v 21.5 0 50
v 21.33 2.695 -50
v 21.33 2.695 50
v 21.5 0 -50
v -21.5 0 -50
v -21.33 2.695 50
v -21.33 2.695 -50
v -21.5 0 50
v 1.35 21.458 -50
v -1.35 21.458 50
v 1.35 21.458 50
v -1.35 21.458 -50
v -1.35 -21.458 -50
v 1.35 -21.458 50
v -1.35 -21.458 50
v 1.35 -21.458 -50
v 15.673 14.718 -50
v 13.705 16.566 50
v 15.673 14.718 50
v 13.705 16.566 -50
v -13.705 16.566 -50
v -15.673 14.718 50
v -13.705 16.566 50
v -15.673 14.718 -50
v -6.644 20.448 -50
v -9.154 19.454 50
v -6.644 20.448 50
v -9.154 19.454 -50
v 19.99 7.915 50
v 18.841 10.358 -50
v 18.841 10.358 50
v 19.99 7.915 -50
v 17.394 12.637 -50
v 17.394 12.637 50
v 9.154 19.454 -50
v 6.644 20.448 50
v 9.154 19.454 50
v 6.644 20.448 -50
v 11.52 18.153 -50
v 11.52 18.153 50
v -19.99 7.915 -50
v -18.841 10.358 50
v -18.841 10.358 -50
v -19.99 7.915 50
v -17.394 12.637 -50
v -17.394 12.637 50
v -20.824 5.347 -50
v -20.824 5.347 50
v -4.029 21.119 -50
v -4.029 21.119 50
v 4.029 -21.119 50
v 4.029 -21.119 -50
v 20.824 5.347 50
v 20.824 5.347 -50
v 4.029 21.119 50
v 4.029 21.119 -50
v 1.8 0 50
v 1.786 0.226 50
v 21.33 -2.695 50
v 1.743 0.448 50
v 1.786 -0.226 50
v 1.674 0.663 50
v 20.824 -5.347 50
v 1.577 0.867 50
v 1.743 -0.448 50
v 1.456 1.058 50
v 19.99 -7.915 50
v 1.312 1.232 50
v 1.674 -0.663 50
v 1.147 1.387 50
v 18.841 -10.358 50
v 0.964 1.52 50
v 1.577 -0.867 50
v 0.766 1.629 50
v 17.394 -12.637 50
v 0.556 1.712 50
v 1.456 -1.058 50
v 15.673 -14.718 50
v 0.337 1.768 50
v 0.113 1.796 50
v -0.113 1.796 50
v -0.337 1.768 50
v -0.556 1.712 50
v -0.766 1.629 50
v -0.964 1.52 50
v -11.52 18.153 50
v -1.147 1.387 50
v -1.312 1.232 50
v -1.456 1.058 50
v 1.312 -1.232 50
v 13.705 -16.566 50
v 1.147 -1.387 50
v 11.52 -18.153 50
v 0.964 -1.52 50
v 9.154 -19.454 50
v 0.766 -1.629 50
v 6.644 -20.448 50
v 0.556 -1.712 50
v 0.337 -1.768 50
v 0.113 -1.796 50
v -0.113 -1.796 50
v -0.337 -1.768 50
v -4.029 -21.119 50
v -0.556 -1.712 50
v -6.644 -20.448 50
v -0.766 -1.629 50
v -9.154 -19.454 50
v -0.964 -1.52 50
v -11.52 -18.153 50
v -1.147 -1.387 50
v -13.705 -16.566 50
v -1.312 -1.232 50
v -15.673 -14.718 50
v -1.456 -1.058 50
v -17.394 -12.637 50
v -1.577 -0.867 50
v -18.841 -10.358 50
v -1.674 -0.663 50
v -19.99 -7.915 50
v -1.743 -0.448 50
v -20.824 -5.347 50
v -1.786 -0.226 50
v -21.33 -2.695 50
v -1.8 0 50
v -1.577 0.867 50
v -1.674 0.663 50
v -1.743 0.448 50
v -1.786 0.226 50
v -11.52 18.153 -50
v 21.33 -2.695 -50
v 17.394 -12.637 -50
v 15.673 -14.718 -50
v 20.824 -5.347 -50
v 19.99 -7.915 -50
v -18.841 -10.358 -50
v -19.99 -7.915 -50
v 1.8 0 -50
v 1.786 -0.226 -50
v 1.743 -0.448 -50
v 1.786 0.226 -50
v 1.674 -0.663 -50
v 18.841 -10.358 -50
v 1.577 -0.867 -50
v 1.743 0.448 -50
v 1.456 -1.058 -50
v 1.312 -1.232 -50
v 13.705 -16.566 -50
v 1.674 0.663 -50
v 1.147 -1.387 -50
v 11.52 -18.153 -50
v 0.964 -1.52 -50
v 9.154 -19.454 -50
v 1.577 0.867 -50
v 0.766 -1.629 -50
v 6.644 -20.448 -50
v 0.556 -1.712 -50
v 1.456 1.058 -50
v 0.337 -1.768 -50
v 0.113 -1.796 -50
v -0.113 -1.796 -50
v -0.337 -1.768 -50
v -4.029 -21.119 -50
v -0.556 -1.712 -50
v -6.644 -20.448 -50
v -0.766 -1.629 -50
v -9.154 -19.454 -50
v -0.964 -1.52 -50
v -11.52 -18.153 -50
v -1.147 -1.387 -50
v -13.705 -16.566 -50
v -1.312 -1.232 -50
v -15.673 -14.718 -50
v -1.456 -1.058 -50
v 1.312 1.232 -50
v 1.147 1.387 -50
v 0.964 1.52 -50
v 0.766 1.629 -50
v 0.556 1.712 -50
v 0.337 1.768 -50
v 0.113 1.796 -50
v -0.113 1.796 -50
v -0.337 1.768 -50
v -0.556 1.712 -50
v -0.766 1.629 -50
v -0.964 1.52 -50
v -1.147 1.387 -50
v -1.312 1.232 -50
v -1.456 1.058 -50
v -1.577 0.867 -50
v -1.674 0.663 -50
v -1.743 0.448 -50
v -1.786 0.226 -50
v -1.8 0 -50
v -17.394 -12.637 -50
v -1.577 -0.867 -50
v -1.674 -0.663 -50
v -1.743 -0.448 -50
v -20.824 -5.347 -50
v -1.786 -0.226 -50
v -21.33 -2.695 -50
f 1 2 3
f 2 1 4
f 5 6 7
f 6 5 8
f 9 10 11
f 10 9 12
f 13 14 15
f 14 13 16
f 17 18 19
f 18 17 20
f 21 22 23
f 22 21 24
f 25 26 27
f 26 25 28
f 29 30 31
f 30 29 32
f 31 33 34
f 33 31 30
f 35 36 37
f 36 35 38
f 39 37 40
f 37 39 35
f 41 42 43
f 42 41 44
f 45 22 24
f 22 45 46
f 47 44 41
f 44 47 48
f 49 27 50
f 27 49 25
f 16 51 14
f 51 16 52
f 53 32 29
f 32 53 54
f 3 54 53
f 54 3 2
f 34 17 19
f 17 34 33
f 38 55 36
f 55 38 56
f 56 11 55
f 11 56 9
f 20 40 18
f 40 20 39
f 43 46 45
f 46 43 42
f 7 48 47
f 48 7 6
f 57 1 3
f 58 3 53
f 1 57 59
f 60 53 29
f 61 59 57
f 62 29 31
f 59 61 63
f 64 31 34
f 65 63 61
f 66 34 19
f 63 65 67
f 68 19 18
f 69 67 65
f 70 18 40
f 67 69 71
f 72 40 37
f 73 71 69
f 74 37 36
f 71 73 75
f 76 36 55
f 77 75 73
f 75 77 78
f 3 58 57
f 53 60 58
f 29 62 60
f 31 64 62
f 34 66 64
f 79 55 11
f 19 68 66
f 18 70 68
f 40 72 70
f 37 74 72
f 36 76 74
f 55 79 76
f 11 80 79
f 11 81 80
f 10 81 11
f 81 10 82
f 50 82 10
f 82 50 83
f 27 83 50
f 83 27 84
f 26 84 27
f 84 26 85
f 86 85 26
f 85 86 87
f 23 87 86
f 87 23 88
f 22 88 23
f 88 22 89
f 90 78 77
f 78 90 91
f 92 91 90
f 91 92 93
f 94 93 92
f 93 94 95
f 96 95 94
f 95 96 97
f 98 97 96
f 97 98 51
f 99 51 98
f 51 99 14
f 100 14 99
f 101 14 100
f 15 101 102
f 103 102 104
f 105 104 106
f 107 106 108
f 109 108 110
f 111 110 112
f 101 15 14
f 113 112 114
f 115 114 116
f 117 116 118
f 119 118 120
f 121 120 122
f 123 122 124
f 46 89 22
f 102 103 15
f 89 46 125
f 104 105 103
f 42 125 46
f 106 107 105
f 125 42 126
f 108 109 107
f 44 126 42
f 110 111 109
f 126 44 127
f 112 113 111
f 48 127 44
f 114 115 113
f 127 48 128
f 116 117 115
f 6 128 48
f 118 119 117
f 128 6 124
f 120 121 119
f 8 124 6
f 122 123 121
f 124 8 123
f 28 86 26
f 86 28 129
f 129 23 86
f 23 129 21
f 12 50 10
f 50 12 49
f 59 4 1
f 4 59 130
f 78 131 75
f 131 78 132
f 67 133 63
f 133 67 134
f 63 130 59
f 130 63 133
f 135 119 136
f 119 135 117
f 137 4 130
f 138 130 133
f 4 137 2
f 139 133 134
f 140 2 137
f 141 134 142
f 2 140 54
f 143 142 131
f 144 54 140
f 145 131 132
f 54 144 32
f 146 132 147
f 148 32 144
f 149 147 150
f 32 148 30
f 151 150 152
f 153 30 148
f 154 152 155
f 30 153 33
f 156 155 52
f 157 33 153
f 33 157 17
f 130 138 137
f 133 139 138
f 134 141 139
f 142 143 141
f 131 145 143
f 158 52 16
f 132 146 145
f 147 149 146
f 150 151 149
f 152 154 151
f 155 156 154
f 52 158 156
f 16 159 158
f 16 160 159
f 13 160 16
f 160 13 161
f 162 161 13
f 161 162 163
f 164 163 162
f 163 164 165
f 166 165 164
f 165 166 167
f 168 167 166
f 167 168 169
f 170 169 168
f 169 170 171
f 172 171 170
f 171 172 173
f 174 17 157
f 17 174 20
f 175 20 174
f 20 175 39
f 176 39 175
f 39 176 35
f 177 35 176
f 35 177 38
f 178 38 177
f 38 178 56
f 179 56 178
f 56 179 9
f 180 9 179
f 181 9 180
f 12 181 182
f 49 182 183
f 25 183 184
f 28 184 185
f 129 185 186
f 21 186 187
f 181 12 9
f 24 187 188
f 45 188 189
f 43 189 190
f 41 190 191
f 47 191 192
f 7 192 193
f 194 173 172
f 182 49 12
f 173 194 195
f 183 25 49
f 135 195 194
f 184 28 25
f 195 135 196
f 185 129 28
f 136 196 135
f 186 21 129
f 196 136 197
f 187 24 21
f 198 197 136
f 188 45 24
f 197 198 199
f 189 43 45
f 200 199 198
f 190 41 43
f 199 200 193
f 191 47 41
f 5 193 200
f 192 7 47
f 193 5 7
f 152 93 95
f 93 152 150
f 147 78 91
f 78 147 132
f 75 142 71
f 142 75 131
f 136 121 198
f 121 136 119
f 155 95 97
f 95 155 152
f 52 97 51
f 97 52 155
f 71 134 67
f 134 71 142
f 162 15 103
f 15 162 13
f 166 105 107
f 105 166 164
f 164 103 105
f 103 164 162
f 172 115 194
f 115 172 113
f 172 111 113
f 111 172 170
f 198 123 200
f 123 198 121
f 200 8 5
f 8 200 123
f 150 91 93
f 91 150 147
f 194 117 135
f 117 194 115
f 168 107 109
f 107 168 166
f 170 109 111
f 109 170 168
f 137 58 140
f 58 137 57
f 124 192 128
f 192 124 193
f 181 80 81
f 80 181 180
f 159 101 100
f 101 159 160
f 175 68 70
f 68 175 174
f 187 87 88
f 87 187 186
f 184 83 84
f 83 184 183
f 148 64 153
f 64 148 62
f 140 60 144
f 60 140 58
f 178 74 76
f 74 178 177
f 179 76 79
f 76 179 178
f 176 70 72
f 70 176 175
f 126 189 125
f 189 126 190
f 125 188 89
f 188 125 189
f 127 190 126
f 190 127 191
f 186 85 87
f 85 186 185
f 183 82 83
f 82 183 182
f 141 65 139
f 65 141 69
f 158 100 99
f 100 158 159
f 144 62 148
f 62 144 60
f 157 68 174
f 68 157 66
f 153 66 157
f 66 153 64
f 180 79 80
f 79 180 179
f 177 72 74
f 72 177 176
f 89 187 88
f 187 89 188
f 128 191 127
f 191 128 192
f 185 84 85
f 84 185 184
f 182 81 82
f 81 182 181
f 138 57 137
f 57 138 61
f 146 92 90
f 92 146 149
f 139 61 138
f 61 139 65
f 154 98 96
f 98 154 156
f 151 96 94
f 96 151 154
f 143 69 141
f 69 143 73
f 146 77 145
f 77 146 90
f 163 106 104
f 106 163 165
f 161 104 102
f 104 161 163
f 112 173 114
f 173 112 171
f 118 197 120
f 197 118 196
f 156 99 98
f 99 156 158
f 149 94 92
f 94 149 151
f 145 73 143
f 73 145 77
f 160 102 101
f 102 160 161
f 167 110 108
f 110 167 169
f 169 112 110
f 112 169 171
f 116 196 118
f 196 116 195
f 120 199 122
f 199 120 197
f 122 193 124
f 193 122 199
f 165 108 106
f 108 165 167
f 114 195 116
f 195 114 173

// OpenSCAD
$fn = 50;


difference() {
	union() {
		translate(v = [0, 0, -50.0000000000]) {
			cylinder(h = 100, r = 21.5000000000);
		}
	}
	union() {
		translate(v = [0, 0, -100.0000000000]) {
			cylinder(h = 200, r = 1.8000000000);
		}
	}
}
